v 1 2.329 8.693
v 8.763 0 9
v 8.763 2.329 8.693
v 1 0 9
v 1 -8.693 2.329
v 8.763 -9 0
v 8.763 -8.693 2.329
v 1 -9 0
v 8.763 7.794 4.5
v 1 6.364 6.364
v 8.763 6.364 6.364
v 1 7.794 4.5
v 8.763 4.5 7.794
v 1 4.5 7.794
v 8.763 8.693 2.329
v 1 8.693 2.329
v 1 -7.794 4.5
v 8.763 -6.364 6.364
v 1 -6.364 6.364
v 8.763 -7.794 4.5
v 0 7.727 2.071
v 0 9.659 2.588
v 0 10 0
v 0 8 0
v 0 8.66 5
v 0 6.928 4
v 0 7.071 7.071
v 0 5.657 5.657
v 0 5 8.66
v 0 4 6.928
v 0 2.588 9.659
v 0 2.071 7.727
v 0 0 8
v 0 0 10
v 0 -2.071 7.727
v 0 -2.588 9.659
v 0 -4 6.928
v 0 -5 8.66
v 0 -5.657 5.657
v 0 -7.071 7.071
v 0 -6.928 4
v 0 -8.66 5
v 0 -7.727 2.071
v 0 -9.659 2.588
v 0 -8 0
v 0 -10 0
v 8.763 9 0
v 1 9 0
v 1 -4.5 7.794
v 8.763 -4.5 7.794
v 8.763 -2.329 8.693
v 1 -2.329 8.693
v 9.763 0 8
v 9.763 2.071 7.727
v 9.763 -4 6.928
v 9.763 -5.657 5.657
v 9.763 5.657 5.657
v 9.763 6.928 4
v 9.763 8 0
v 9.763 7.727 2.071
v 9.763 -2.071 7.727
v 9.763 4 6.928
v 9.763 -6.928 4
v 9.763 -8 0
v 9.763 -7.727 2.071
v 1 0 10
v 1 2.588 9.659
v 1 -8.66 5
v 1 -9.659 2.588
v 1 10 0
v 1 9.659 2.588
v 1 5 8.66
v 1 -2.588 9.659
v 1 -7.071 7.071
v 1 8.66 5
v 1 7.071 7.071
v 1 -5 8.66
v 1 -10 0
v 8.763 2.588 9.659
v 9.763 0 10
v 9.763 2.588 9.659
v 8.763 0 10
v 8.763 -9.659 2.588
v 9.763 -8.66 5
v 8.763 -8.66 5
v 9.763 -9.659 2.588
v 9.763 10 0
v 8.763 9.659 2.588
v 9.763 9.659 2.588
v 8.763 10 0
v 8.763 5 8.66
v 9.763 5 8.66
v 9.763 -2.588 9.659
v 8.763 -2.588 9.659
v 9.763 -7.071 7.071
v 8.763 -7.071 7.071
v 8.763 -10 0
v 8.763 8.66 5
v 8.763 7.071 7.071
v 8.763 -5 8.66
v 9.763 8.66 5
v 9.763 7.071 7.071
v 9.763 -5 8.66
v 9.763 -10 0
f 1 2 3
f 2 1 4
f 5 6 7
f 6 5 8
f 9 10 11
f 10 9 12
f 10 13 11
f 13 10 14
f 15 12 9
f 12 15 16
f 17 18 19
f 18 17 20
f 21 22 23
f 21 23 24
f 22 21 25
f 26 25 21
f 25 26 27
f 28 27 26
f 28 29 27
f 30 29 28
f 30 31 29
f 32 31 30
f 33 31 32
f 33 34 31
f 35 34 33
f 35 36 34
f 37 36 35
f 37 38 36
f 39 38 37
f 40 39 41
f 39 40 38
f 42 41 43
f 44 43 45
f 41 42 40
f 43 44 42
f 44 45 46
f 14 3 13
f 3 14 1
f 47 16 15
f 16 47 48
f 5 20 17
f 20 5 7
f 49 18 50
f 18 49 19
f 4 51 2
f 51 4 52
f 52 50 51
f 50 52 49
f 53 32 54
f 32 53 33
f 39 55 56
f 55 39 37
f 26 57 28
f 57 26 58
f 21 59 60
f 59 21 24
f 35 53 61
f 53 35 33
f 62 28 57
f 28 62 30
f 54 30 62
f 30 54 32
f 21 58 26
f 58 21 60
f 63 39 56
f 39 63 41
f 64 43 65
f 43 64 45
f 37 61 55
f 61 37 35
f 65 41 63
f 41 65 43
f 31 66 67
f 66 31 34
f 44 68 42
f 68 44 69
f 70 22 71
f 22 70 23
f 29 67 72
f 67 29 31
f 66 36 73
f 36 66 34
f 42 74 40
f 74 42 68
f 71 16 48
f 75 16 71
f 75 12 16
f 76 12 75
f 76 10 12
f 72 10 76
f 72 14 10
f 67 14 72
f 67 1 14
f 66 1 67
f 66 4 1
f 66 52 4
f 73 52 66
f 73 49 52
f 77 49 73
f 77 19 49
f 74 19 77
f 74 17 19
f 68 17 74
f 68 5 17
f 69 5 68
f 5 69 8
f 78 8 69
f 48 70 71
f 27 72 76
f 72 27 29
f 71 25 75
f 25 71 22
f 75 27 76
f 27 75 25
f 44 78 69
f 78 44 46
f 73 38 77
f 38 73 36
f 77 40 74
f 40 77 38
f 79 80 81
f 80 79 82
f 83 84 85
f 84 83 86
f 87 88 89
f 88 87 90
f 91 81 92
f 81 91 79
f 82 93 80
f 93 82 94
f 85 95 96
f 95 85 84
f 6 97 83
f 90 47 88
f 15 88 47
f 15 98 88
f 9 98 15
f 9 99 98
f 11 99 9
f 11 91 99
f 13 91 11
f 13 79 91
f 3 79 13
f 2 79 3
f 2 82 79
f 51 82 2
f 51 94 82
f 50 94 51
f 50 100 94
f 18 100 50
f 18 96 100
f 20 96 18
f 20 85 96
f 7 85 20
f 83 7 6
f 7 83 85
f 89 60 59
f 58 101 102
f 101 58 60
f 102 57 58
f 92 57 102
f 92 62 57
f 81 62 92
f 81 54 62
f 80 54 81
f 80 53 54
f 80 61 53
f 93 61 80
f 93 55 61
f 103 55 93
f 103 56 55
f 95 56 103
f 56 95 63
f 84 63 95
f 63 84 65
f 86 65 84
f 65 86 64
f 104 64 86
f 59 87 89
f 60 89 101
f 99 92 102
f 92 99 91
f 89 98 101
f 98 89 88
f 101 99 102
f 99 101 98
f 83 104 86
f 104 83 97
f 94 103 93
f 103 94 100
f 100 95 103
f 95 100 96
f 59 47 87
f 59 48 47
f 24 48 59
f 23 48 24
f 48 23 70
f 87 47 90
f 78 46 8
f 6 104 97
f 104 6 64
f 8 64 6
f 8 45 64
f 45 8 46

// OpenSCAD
// file: ../build_environments.scad
// build_environments.scad: modules to build level sections
//

module pool(diameter=10.0, wall_height=2.0, step_width=3.0, connections=[])
{
    difference() {
        union() {
        difference() {
            cylinder(h=0.5,r1=diameter+step_width,r2=diameter+step_width,$fn=48);
            translate([0,0,-0.1])
                cylinder(h=0.7,r1=diameter,r2=diameter,$fn=48);
        }
        difference() {
            cylinder(h=wall_height,r1=diameter+step_width+1.0,r2=diameter+step_width+1.0,$fn=48);
            translate([0,0,-0.1])
                cylinder(h=wall_height+0.2,r1=diameter+step_width,r2=diameter+step_width,$fn=48);
        }
        }
    
        for (c = connections)
        {
            rotate([0,90,0]) {
                angle = atan2(c[1],c[0]);
                rotate([-angle,0,0]) {
                    cylinder(h=diameter+5.0,r1=c[2],r2=c[2],$fn=48);
                }
            }
        }
    }
}

module straight(length=10.0, width=2.0, dy1=0.0, dy2=0.0, dz=0.0)
{
    dims = [0, 0, 0, 0, 0, (dz/length)];
    matrix = [
        [ 1, dims[0], dims[1], 0 ],
        [ dims[2], 1, dims[4], 0 ],
        [ dims[5], dims[3], 1, 0 ],
        [ 0, 0, 0, 1 ]
    ];
    multmatrix(matrix)
    difference() {
        translate([dy1,0,0])
        union() {
            rotate([0,90,0]) {
                difference() {
                    cylinder(h=(length-dy1-dy2),r1=width+1.0,r2=width+1.0,$fn=24);
                    translate([0,0,-0.1])
                        cylinder(h=(length-dy1-dy2+0.2),r1=width,r2=width,$fn=24);
                }
                difference() {
                    cylinder(h=1.0,r1=width+2.0,r2=width+2.0,$fn=24);
                    translate([0,0,-0.1])
                        cylinder(h=1.2,r1=width,r2=width,$fn=24);
                }
                translate([0,0,(length-dy1-dy2)-1.0]) {
                    difference() {
                        cylinder(h=1.0,r1=width+2.0,r2=width+2.0,$fn=24);
                        translate([0,0,-0.1])
                            cylinder(h=1.2,r1=width,r2=width,$fn=24);
                    }
                }
            }
        }
        translate([0,0,-(2*width+4.0)/2])
            cube([3*length,3*length,2*width+4.0],center=true);
    }
}

module curve(p0=[0,0], center=[0,0], dir=1, angle=0.0, width=2.0)
{
    radius = sqrt((p0[0]-center[0])*(p0[0]-center[0]) + (p0[1]-center[1])*(p0[1]-center[1]));
    if (dir == 0) {
        difference() {
            rotate([0,0,-90])
            difference() {
                rotate_extrude(angle = angle, convexity = 10, $fn=32)
                    translate([radius, 0, 0])
                        circle(r = width+1.0,$fn=24);
                rotate([0,0,-1.0])
                    rotate_extrude(angle = angle+2.0, convexity = 10, $fn=32)
                        translate([radius, 0, 0])
                            circle(r = width,$fn=24);
            }
            translate([0,0,-(2*width+4.0)/2])
                cube([5*radius,5*radius,2*width+4.0],center=true);
        }
    }
    else {
        difference() {
            rotate([0,0,90])
            difference() {
                rotate_extrude(angle = -angle, convexity = 10, $fn=32)
                    translate([radius, 0, 0])
                        circle(r = width+1.0,$fn=24);
                rotate([0,0,1.0])
                    rotate_extrude(angle = -angle-2.0, convexity = 10, $fn=32)
                        translate([radius, 0, 0])
                            circle(r = width,$fn=24);
            }
            translate([0,0,-(2*width+4.0)/2])
                cube([5*radius,5*radius,2*width+4.0],center=true);
        }
    }

}

// test pool
//pool(diameter=12.0000, wall_height=3.0000, step_width=3.0000, connections=[[0.0000,-26.0000,2.0000], [23.6074,0.0000,2.0000]]);

// test straight, slope
//straight(length=26.0000, width=2.0000, dy1=11.8322, dy2=6.7082, dz=0.0000);
//straight(length=29.1549, width=12.0000, dy1=0.0000, dy2=0.0000, dz=-15.0000);

// test curve
//curve(p0=[23.6074, 0.0000], center=[23.6074, 5.0000], dir=0, angle=60.1011, width=2.0000);
//curve(p0=[33.6426, 12.4219], center=[37.9771, 9.9295], dir=1, angle=120.4627, width=2.0000);
// main file
use <../build_environments.scad>;
straight(length=9.7626, width=8.0000, dy1=0.0000, dy2=0.0000, dz=0.0000);
